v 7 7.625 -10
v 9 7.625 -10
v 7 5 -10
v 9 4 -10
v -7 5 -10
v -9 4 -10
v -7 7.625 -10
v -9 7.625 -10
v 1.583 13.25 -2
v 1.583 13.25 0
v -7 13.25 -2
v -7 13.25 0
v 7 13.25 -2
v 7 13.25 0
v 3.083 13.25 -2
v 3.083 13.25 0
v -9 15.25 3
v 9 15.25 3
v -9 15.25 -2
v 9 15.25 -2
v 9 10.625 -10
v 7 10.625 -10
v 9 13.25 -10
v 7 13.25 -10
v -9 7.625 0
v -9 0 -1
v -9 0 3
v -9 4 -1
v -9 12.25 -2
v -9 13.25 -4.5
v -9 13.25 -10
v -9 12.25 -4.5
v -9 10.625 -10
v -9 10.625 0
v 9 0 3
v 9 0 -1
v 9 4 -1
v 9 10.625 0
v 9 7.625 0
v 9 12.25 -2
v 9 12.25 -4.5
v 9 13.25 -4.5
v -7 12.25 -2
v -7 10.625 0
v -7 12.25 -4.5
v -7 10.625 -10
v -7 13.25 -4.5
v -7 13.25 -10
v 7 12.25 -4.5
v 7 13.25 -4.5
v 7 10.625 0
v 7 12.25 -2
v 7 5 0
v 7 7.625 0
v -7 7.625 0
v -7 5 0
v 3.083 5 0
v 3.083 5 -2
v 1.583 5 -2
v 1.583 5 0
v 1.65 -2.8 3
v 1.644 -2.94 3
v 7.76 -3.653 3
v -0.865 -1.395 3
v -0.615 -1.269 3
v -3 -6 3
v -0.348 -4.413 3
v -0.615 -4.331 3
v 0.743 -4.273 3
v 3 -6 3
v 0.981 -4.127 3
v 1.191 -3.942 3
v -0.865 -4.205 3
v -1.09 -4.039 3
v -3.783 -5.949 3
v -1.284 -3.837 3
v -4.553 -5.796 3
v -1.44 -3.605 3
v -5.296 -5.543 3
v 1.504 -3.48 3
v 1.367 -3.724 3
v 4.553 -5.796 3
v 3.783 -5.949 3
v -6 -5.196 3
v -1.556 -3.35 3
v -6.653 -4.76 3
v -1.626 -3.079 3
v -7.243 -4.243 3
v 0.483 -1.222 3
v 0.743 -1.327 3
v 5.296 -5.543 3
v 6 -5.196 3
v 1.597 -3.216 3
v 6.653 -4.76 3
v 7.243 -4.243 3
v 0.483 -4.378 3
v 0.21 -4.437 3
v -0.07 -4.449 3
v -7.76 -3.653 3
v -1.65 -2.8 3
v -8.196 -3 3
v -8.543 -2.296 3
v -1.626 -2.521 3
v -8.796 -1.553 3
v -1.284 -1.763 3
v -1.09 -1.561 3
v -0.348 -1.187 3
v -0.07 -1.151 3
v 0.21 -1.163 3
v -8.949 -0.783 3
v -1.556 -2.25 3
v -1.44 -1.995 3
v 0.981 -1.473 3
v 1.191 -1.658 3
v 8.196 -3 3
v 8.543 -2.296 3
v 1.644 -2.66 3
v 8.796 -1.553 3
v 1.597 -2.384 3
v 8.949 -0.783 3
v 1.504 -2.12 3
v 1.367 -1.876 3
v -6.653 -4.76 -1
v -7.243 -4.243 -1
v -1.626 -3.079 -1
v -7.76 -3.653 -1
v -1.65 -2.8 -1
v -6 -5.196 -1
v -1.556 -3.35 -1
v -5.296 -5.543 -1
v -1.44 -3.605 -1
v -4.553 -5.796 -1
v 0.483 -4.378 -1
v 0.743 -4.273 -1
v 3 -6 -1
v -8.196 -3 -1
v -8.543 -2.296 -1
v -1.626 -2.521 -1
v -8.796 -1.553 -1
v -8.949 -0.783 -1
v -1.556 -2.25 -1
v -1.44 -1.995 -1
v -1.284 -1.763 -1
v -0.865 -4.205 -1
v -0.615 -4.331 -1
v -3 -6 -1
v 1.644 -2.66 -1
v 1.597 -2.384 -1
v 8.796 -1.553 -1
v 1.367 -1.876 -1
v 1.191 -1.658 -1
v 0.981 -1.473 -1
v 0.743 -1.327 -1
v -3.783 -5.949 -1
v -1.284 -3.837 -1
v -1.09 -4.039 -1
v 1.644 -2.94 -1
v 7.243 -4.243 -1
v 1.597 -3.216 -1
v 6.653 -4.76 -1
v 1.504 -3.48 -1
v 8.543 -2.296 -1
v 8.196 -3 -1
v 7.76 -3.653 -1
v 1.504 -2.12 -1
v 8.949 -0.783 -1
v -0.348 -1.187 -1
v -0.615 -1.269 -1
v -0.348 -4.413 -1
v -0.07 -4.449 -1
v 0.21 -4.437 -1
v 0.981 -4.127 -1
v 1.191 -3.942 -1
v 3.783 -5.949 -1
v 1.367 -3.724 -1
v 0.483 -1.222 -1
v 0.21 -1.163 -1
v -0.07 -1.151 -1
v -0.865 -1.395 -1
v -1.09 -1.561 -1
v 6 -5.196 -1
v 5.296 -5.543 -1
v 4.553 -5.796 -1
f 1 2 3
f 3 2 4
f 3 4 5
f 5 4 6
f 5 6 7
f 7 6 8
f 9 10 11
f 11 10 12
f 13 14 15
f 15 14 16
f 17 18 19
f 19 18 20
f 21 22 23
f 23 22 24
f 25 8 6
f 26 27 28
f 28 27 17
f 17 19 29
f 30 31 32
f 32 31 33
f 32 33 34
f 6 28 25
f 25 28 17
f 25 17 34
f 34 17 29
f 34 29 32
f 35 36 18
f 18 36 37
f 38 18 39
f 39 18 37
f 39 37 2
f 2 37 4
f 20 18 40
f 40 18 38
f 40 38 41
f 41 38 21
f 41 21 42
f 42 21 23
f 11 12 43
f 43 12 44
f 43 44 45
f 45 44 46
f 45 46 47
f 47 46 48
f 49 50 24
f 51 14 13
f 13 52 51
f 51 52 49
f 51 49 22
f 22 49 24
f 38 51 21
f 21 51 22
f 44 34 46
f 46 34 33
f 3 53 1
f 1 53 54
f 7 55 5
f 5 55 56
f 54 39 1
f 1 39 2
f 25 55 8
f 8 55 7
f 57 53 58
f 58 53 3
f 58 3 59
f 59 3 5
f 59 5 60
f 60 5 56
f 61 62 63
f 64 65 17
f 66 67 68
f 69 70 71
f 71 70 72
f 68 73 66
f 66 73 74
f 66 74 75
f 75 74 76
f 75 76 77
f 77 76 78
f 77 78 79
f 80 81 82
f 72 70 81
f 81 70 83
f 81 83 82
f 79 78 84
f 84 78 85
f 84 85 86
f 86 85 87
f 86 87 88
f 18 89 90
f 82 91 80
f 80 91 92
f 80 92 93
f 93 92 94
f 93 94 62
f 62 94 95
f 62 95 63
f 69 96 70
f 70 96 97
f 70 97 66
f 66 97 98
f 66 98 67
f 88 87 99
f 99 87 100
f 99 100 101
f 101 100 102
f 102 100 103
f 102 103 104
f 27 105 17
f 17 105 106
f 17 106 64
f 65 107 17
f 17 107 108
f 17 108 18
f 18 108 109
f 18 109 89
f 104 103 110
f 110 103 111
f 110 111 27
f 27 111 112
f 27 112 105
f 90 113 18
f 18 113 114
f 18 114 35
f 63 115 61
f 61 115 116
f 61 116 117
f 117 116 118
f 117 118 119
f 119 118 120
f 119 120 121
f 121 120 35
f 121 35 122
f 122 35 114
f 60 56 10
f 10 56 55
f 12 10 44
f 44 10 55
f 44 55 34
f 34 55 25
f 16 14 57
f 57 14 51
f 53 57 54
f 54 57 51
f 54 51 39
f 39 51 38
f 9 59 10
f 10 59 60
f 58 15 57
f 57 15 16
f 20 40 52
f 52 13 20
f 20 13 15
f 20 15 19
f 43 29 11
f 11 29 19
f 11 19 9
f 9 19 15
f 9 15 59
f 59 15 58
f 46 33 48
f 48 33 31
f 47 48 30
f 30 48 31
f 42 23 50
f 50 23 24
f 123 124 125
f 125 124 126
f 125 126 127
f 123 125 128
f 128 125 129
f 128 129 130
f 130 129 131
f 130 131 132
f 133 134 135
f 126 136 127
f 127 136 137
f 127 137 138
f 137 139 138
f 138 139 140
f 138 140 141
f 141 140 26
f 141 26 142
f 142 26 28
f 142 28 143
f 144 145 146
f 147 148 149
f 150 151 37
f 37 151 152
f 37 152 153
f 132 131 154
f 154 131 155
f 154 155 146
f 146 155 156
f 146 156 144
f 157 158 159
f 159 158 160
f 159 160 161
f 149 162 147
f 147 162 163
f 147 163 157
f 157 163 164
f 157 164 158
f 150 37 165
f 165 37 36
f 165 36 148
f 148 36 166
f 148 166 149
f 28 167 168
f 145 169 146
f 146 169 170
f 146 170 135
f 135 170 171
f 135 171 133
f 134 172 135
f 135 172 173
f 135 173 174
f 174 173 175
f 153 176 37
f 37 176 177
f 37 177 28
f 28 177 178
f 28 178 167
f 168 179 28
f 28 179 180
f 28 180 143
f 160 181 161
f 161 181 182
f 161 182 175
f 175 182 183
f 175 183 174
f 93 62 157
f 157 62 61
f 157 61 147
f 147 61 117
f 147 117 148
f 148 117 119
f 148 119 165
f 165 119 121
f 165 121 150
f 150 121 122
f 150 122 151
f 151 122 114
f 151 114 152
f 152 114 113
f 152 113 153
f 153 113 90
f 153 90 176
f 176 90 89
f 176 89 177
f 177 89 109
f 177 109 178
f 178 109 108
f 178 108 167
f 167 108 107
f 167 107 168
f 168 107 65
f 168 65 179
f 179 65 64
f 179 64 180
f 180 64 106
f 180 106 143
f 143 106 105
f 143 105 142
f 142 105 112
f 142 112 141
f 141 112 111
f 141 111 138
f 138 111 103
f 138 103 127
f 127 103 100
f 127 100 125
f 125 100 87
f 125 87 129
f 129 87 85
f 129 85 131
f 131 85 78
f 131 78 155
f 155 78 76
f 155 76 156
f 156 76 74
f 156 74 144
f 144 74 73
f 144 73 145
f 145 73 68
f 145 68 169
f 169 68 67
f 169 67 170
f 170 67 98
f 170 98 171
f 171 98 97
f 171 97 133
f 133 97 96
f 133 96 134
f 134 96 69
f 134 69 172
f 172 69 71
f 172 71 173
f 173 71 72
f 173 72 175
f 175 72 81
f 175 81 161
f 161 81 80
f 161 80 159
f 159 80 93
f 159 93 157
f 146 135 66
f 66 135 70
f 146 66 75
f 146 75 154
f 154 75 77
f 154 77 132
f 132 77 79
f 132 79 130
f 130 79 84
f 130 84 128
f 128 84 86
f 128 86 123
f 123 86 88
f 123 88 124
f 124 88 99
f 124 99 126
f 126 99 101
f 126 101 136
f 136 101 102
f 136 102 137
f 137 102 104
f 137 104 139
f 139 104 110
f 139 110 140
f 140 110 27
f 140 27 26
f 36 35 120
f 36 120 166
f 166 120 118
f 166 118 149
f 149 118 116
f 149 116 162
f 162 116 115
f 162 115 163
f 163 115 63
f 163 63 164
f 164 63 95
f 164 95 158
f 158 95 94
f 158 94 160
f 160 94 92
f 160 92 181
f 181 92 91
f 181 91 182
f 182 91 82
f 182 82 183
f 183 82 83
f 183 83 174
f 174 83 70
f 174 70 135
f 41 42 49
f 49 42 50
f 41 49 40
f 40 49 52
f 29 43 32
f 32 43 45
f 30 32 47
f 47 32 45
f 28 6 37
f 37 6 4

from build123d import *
from build123d.topology import SkipClean

# Parameters (mm, degrees)
ESBO_O1_R                = 1.65
RESSALTO_EXTRUS_O1_DEPTH = 3
RESSALTO_EXTRUS_O2_START = 15
ESBO_O2_R                = 1.65
RESSALTO_EXTRUS_O2_DEPTH = 15
CORTE_EXTRUS_O1_DEPTH    = 15
RESSALTO_EXTRUS_O3_DEPTH = 2
ESBO_O6_W                = 23.468316857
ESBO_O6_H                = 21.298976644
CORTE_EXTRUS_O2_DEPTH    = 21
ESBO_O7_W                = 18
ESBO_O7_H                = 18
RESSALTO_EXTRUS_O4_DEPTH = 2
CORTE_EXTRUS_O3_DEPTH    = 5
ESBO_O9_W                = 18
ESBO_O9_H                = 2
CORTE_EXTRUS_O4_DEPTH    = 8
ESBO_O10_W               = 18
ESBO_O10_H               = 4
RESSALTO_EXTRUS_O5_DEPTH = 7.5
ESBO_O11_R               = 1.65
CORTE_EXTRUS_O5_DEPTH    = 7.5
ESBO_O12_W               = 18
ESBO_O12_H               = 4
RESSALTO_EXTRUS_O6_DEPTH = 1.5
FILETE1_R                = 6
ESBO_O13_W               = 18
ESBO_O13_H               = 2.5
CORTE_EXTRUS_O6_DEPTH    = 1
ESBO_O14_W               = 18
ESBO_O14_H               = 9
CORTE_EXTRUS_O7_DEPTH    = 1


with BuildPart() as part:
    # Esboço1 → Ressalto-extrusão1 (new body)
    # profile 1 of 3: a face of its own
    with BuildSketch(Plane.XY):
        Polygon((-7, 15.25), (-9, 15.25), (-9, 13.25), (-9, 5), (-6.541451884, 0), (-2.020725942, -6), (2.020725942, -6), (6.541451884, 0), (9, 5), (9, 15.25), (7, 15.25), align=None)
        Polygon((2.020725942, -3.5), (4.041451884, 0), (2.020725942, 3.5), (-2.020725942, 3.5), (-4.041451884, 0), (-2.020725942, -3.5), align=None, mode=Mode.SUBTRACT)
        Polygon((-7, 13.25), (-7, 5), (0, 5), (7, 5), (7, 13.25), align=None, mode=Mode.SUBTRACT)
    # profile 2 of 3: a face of its own
    with BuildSketch(Plane.XY):
        Polygon((7, 13.25), (-7, 13.25), (-7, 5), (0, 5), (7, 5), align=None)
    # profile 3 of 3: a face of its own
    with BuildSketch(Plane.XY):
        Polygon((-2.020725942, -3.5), (2.020725942, -3.5), (4.041451884, 0), (2.020725942, 3.5), (-2.020725942, 3.5), (-4.041451884, 0), align=None)
        Circle(ESBO_O1_R, mode=Mode.SUBTRACT)
    extrude(amount=RESSALTO_EXTRUS_O1_DEPTH)

    # Esboço2 → Ressalto-extrusão2 (add)
    # profile 1 of 2: a face of its own
    with SkipClean():  # the faces are left unmerged after this step: merging them gives an invalid solid
        with BuildSketch(Plane(origin=(0, 0, 0), x_dir=(-1, 0, 0), z_dir=(0, 0, -1)).offset(RESSALTO_EXTRUS_O2_START)):
            Polygon((9, 5), (9, 15.25), (-9, 15.25), (-9, 5), (-6.541451884, 0), (-2.020725942, -6), (2.020725942, -6), (6.541451884, 0), align=None)
            Polygon((7, 5), (7, 13.25), (-7, 13.25), (-7, 5), (0, 5), align=None, mode=Mode.SUBTRACT)
            Polygon((-4.041451884, 0), (-2.020725942, -3.5), (2.020725942, -3.5), (4.041451884, 0), (2.020725942, 3.5), (-2.020725942, 3.5), align=None, mode=Mode.SUBTRACT)
        # profile 2 of 2: a face of its own
        with BuildSketch(Plane(origin=(0, 0, 0), x_dir=(-1, 0, 0), z_dir=(0, 0, -1)).offset(RESSALTO_EXTRUS_O2_START)):
            Polygon((-2.020725942, 3.5), (-4.041451884, 0), (-2.020725942, -3.5), (2.020725942, -3.5), (4.041451884, 0), (2.020725942, 3.5), align=None)
            Circle(ESBO_O2_R, mode=Mode.SUBTRACT)
        extrude(amount=-RESSALTO_EXTRUS_O2_DEPTH)

    # Esboço3 → Corte-extrusão1 (cut)
    with SkipClean():  # the faces are left unmerged after this step: merging them gives an invalid solid
        with BuildSketch(Plane(origin=(0, 0, -15), x_dir=(-1, 0, 0), z_dir=(0, 0, -1))):
            Polygon((-9, 10.625), (-9, 9.125), (-9, 7.625), (-7, 7.625), (-7, 10.625), align=None)
            Polygon((9, 7.625), (9, 9.125), (9, 10.625), (7, 10.625), (7, 7.625), align=None)
        extrude(amount=-CORTE_EXTRUS_O1_DEPTH, mode=Mode.SUBTRACT)

    # Esboço5 → Ressalto-extrusão3 (add)
    with SkipClean():  # the faces are left unmerged after this step: merging them gives an invalid solid
        with BuildSketch(Plane(origin=(0, 0, 0), x_dir=(-1, 0, 0), z_dir=(0, 0, -1))):
            Polygon((-1.583333333, 13.25), (-2.333333333, 13.25), (-3.083333333, 13.25), (-3.083333333, 5), (-1.583333333, 5), align=None)
        extrude(amount=RESSALTO_EXTRUS_O3_DEPTH)

    # Esboço6 → Corte-extrusão2 (cut)
    with BuildSketch(Plane(origin=(0, -16, 0), x_dir=(-1, 0, 0), z_dir=(0, -1, 0))):
        with Locations((-0.042259875, 5.70418088)):
            Rectangle(ESBO_O6_W, ESBO_O6_H)
    extrude(amount=-CORTE_EXTRUS_O2_DEPTH, mode=Mode.SUBTRACT)

    # Esboço7 → Ressalto-extrusão4 (add)
    with BuildSketch(Plane.XZ.offset(-5)):
        with Locations((0, -6)):
            Rectangle(ESBO_O7_W, ESBO_O7_H)
    extrude(amount=RESSALTO_EXTRUS_O4_DEPTH)

    # Esboço8 → Corte-extrusão3 (cut)
    with BuildSketch(Plane(origin=(0, 0, -15), x_dir=(-1, 0, 0), z_dir=(0, 0, -1))):
        Polygon((7, 7.625), (7, 5), (-7, 5), (-7, 7.625), (-9, 7.625), (-9, 3), (9, 3), (9, 7.625), align=None)
        Polygon((7, 10.625), (9, 10.625), (9, 15.25), (-9, 15.25), (-9, 10.625), (-7, 10.625), (-7, 13.25), (7, 13.25), align=None)
    extrude(amount=-CORTE_EXTRUS_O3_DEPTH, mode=Mode.SUBTRACT)

    # Esboço9 → Corte-extrusão4 (cut)
    with BuildSketch(Plane(origin=(0, 0, -10), x_dir=(-1, 0, 0), z_dir=(0, 0, -1))):
        with Locations((0, 14.25)):
            Rectangle(ESBO_O9_W, ESBO_O9_H)
    extrude(amount=-CORTE_EXTRUS_O4_DEPTH, mode=Mode.SUBTRACT)

    # Esboço10 → Ressalto-extrusão5 (add)
    with BuildSketch(Plane.XZ.offset(-3)):
        with Locations((0, 1)):
            Rectangle(ESBO_O10_W, ESBO_O10_H)
    extrude(amount=RESSALTO_EXTRUS_O5_DEPTH)

    # Esboço11 → Corte-extrusão5 (cut)
    with BuildSketch(Plane(origin=(0, 0, -1), x_dir=(-1, 0, 0), z_dir=(0, 0, -1))):
        with Locations((0, -2.8)):
            Circle(ESBO_O11_R)
    extrude(amount=-CORTE_EXTRUS_O5_DEPTH, mode=Mode.SUBTRACT)

    # Esboço12 → Ressalto-extrusão6 (add)
    with BuildSketch(Plane.XZ.offset(4.5)):
        with Locations((0, 1)):
            Rectangle(ESBO_O12_W, ESBO_O12_H)
    extrude(amount=RESSALTO_EXTRUS_O6_DEPTH)

    # Filete1
    filete1_edges = [part.edges().sort_by_distance(p)[0] for p in [
        (-9, -6, 1),
        (9, -6, 1),
    ]]
    fillet(filete1_edges, radius=FILETE1_R)

    # Esboço13 → Corte-extrusão6 (cut)
    with BuildSketch(Plane(origin=(0, 13.25, 0), x_dir=(1, 0, 0), z_dir=(0, 1, 0))):
        with Locations((0, 3.25)):
            Rectangle(ESBO_O13_W, ESBO_O13_H)
    extrude(amount=-CORTE_EXTRUS_O6_DEPTH, mode=Mode.SUBTRACT)

    # Esboço14 → Corte-extrusão7 (cut)
    with BuildSketch(Plane.XZ.offset(-3)):
        with Locations((0, -5.5)):
            Rectangle(ESBO_O14_W, ESBO_O14_H)
    extrude(amount=-CORTE_EXTRUS_O7_DEPTH, mode=Mode.SUBTRACT)


solid = part.part
